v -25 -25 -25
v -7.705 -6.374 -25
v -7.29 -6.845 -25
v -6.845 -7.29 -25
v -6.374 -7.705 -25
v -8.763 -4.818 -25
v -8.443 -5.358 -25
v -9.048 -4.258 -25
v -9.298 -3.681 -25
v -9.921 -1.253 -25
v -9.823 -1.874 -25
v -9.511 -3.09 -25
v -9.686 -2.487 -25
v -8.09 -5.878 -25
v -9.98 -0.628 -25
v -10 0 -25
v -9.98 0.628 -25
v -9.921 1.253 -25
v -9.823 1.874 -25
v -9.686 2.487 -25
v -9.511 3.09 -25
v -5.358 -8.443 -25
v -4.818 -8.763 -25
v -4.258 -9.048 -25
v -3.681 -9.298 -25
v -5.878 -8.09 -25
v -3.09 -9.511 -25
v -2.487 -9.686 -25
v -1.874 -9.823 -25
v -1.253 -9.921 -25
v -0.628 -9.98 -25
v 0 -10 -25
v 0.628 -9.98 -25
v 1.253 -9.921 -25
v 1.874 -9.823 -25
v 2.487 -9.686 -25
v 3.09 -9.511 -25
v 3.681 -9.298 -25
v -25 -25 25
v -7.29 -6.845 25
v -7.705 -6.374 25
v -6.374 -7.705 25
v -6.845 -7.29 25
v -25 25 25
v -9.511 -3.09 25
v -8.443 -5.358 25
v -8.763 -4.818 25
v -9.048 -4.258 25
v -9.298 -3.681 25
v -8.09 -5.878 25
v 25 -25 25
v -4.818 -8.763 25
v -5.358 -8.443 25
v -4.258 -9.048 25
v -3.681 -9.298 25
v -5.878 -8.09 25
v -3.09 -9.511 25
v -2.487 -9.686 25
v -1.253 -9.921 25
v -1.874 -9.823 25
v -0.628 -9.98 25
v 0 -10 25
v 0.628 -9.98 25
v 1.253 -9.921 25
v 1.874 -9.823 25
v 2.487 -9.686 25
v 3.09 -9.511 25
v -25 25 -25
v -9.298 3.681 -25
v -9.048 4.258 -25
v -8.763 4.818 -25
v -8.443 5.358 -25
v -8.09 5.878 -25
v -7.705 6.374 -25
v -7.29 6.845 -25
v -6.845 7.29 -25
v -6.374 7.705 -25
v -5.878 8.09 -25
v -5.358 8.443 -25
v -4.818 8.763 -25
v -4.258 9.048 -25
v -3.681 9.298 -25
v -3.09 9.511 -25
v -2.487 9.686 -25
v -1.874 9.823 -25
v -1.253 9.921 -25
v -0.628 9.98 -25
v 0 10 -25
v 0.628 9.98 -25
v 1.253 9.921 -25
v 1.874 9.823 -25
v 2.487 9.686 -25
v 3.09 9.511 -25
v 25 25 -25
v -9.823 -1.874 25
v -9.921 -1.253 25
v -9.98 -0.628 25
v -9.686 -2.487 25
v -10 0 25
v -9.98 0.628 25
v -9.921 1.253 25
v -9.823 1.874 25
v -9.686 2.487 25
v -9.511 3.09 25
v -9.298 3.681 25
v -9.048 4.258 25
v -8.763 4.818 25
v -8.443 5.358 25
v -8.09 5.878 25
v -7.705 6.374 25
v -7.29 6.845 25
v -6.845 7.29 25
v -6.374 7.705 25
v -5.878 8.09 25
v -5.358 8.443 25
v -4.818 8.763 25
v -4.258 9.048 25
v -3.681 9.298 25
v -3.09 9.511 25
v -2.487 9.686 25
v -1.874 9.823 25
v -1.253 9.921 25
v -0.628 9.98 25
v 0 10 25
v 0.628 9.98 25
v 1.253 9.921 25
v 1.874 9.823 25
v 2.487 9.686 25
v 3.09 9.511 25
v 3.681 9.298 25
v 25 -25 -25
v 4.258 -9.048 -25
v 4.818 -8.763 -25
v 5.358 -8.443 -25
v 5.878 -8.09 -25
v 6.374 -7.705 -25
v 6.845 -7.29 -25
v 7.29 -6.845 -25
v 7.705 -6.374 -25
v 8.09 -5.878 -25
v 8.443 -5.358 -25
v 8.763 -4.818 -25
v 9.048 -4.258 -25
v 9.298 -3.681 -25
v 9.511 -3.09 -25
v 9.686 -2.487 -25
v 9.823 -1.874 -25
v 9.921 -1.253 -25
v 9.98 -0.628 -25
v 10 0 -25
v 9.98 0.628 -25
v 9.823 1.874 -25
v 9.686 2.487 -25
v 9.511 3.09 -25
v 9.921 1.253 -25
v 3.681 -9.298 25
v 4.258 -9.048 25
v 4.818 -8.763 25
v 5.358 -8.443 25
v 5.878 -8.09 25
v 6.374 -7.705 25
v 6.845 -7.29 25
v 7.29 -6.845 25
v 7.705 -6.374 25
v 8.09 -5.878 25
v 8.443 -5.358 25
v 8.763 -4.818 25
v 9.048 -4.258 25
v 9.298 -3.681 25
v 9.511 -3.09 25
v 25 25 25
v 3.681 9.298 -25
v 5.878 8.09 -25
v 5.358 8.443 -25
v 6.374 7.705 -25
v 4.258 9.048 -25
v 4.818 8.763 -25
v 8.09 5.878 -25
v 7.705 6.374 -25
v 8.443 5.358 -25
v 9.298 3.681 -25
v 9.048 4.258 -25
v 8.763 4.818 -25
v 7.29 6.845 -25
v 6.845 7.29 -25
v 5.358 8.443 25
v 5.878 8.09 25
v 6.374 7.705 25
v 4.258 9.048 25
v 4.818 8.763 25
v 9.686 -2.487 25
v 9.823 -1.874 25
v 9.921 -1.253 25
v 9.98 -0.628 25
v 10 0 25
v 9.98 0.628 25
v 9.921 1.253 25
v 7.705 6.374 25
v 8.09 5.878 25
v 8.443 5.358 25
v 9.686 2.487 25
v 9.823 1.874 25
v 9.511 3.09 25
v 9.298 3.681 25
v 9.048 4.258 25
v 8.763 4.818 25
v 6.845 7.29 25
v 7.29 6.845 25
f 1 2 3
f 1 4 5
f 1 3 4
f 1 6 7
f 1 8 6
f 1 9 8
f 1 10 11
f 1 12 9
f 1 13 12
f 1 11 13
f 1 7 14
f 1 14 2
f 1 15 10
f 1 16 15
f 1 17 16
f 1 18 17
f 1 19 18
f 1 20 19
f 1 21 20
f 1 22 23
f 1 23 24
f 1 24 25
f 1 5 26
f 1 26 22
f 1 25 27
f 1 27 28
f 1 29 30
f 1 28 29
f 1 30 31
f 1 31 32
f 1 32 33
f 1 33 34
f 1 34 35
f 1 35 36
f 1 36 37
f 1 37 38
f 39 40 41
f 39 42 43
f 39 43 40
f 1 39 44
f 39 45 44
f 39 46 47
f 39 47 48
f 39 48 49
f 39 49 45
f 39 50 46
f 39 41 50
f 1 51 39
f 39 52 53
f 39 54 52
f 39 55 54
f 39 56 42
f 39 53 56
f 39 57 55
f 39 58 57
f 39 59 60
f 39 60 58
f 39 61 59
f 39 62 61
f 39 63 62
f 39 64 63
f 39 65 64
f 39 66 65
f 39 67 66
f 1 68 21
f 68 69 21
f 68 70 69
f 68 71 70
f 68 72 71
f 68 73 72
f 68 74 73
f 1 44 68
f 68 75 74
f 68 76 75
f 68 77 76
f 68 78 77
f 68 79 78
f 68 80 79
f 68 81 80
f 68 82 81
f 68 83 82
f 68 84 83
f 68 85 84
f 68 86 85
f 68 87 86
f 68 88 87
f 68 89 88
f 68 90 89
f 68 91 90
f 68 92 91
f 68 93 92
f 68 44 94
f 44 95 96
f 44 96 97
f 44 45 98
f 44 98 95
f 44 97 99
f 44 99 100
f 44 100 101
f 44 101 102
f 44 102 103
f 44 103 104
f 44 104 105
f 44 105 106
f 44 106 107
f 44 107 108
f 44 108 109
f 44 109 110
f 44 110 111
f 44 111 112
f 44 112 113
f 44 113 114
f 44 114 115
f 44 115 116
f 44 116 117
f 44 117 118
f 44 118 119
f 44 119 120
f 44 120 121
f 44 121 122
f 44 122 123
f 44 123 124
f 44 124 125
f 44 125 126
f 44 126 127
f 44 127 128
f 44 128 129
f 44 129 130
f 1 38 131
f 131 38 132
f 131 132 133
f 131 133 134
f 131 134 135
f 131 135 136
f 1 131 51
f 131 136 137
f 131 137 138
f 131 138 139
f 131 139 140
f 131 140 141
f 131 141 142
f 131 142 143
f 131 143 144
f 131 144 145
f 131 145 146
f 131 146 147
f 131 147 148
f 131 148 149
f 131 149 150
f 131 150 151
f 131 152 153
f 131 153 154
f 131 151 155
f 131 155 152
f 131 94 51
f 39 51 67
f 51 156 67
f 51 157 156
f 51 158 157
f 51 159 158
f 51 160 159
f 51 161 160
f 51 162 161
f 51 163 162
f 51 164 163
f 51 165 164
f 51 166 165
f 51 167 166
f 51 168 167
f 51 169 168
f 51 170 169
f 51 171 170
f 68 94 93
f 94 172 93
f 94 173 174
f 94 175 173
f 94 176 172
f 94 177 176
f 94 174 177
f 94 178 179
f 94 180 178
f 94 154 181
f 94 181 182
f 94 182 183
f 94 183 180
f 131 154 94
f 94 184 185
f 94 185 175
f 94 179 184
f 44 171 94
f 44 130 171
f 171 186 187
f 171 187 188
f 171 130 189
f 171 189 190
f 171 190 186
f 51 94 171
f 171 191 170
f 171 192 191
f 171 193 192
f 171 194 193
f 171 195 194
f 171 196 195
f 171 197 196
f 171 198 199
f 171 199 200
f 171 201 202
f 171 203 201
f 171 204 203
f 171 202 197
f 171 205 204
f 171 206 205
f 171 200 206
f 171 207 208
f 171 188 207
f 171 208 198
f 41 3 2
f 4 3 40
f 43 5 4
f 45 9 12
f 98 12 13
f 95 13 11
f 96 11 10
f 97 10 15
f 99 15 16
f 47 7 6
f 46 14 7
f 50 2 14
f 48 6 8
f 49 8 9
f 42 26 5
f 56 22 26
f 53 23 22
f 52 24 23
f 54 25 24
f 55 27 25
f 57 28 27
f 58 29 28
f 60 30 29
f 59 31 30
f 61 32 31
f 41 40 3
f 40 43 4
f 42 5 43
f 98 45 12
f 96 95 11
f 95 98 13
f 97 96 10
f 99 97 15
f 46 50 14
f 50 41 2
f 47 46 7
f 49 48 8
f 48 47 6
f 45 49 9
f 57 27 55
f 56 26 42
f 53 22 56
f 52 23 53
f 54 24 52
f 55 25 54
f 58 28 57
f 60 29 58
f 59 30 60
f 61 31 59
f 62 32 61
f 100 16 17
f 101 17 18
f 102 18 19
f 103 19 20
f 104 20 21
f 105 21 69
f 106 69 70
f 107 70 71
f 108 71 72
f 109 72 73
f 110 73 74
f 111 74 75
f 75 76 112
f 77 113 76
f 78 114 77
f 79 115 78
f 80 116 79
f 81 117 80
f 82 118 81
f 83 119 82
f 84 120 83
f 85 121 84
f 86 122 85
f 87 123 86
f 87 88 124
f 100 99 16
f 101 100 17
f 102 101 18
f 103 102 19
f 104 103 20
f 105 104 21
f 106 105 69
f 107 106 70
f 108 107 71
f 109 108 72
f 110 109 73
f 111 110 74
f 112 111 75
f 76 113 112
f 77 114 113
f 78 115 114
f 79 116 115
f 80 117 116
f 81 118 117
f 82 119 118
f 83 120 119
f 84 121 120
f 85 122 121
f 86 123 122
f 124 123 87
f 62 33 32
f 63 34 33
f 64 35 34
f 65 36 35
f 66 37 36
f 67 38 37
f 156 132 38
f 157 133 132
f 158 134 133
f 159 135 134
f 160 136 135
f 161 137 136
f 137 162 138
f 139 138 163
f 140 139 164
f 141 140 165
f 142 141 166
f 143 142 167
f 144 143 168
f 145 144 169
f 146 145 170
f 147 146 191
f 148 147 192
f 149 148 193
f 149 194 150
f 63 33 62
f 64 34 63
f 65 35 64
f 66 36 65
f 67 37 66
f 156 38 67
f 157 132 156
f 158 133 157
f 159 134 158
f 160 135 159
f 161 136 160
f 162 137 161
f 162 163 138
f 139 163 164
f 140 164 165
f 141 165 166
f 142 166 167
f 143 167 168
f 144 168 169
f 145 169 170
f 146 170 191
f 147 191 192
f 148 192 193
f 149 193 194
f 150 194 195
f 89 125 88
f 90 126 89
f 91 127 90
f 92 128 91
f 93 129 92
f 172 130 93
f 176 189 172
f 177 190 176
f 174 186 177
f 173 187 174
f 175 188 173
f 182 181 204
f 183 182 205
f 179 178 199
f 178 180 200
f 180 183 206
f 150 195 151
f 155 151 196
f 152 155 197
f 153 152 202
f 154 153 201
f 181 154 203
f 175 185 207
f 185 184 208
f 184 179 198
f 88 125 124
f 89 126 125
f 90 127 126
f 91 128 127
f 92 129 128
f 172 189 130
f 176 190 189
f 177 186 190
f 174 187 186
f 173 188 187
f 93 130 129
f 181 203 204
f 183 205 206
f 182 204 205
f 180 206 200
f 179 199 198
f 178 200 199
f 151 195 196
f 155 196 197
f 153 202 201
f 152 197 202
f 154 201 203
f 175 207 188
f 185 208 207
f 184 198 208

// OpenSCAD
// パラメータ設定
cube_size = 50;
hole_diameter = 20;

difference() {
    // 50mm角の立方体
    cube(cube_size, center = true);
    
    // z軸方向に貫通する直径20mmの円柱
    cylinder(h = cube_size + 2, d = hole_diameter, center = true, $fn = 100);
}
